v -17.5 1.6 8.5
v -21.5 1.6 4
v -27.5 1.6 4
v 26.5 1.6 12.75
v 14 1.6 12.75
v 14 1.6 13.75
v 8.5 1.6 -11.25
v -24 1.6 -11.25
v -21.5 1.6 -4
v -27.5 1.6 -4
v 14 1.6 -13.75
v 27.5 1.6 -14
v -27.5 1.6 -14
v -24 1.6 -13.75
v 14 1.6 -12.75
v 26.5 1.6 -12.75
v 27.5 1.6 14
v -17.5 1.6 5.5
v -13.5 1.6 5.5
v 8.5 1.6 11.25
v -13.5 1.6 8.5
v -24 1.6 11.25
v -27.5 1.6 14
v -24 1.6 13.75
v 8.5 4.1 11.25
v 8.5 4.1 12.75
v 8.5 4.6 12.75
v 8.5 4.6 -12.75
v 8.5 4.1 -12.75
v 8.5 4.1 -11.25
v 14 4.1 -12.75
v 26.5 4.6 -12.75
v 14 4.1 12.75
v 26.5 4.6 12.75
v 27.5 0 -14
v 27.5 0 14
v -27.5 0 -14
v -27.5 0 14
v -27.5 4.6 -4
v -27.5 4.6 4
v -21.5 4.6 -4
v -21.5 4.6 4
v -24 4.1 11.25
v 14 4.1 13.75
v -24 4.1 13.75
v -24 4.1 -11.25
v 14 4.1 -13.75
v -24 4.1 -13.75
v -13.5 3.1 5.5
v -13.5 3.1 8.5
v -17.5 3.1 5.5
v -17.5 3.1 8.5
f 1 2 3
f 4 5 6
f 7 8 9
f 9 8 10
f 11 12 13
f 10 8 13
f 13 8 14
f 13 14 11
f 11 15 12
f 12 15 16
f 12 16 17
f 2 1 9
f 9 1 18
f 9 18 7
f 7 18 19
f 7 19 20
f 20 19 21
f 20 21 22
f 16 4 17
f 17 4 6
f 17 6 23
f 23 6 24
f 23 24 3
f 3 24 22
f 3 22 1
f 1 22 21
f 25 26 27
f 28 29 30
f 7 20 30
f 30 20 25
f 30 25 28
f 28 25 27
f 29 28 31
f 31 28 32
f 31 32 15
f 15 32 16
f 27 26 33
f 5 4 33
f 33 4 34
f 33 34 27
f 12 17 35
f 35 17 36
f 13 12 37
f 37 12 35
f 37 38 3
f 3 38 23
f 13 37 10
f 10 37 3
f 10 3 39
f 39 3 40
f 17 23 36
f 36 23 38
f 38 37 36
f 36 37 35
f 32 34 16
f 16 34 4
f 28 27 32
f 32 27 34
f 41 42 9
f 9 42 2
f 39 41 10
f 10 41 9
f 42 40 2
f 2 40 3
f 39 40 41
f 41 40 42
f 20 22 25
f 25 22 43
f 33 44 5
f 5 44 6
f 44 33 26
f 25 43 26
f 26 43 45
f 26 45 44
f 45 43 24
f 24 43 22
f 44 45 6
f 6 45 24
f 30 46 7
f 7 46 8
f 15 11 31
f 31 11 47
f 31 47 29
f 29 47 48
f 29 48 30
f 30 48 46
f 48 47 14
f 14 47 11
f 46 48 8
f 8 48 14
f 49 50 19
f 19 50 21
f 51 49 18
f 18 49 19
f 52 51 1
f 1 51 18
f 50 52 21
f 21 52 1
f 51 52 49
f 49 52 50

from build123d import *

# Parameters (mm, degrees)
SKETCH1_W          = 55
SKETCH1_H          = 28
PCB_DEPTH          = 1.6
WROOM_SHIELD_START = 1.6
SKETCH2_W          = 18
SKETCH2_H          = 25.5
WROOM_SHIELD_DEPTH = 3
MICRO_USB_START    = 1.6
SKETCH3_W          = 6
SKETCH3_H          = 8
MICRO_USB_DEPTH    = 3
HEADER_1_START     = 1.6
SKETCH4_W          = 38
SKETCH4_H          = 2.5
HEADER_1_DEPTH     = 2.5
HEADER_2_START     = 1.6
SKETCH5_W          = 38
SKETCH5_H          = 2.5
HEADER_2_DEPTH     = 2.5
BUTTON_EN_START    = 1.6
SKETCH6_W          = 4
SKETCH6_H          = 3
BUTTON_EN_DEPTH    = 1.5


with BuildPart() as part:
    # Sketch1 → PCB (new body)
    with BuildSketch(Plane(origin=(0, 0, 0), x_dir=(1, 0, 0), z_dir=(0, 1, 0))):
        Rectangle(SKETCH1_W, SKETCH1_H)
    extrude(amount=PCB_DEPTH)

    # Sketch2 → WROOM_Shield (add)
    with BuildSketch(Plane(origin=(0, 0, 0), x_dir=(1, 0, 0), z_dir=(0, 1, 0)).offset(WROOM_SHIELD_START)):
        with Locations((17.5, 0)):
            Rectangle(SKETCH2_W, SKETCH2_H)
    extrude(amount=WROOM_SHIELD_DEPTH)

    # Sketch3 → Micro_USB (add)
    with BuildSketch(Plane(origin=(0, 0, 0), x_dir=(1, 0, 0), z_dir=(0, 1, 0)).offset(MICRO_USB_START)):
        with Locations((-24.5, 0)):
            Rectangle(SKETCH3_W, SKETCH3_H)
    extrude(amount=MICRO_USB_DEPTH)

    # Sketch4 → Header_1 (add)
    with BuildSketch(Plane(origin=(0, 0, 0), x_dir=(1, 0, 0), z_dir=(0, 1, 0)).offset(HEADER_1_START)):
        with Locations((-5, -12.5)):
            Rectangle(SKETCH4_W, SKETCH4_H)
    extrude(amount=HEADER_1_DEPTH)

    # Sketch5 → Header_2 (add)
    with BuildSketch(Plane(origin=(0, 0, 0), x_dir=(1, 0, 0), z_dir=(0, 1, 0)).offset(HEADER_2_START)):
        with Locations((-5, 12.5)):
            Rectangle(SKETCH5_W, SKETCH5_H)
    extrude(amount=HEADER_2_DEPTH)

    # Sketch6 → Button_EN (add)
    with BuildSketch(Plane(origin=(0, 0, 0), x_dir=(1, 0, 0), z_dir=(0, 1, 0)).offset(BUTTON_EN_START)):
        with Locations((-15.5, -7)):
            Rectangle(SKETCH6_W, SKETCH6_H)
    extrude(amount=BUTTON_EN_DEPTH)


solid = part.part
